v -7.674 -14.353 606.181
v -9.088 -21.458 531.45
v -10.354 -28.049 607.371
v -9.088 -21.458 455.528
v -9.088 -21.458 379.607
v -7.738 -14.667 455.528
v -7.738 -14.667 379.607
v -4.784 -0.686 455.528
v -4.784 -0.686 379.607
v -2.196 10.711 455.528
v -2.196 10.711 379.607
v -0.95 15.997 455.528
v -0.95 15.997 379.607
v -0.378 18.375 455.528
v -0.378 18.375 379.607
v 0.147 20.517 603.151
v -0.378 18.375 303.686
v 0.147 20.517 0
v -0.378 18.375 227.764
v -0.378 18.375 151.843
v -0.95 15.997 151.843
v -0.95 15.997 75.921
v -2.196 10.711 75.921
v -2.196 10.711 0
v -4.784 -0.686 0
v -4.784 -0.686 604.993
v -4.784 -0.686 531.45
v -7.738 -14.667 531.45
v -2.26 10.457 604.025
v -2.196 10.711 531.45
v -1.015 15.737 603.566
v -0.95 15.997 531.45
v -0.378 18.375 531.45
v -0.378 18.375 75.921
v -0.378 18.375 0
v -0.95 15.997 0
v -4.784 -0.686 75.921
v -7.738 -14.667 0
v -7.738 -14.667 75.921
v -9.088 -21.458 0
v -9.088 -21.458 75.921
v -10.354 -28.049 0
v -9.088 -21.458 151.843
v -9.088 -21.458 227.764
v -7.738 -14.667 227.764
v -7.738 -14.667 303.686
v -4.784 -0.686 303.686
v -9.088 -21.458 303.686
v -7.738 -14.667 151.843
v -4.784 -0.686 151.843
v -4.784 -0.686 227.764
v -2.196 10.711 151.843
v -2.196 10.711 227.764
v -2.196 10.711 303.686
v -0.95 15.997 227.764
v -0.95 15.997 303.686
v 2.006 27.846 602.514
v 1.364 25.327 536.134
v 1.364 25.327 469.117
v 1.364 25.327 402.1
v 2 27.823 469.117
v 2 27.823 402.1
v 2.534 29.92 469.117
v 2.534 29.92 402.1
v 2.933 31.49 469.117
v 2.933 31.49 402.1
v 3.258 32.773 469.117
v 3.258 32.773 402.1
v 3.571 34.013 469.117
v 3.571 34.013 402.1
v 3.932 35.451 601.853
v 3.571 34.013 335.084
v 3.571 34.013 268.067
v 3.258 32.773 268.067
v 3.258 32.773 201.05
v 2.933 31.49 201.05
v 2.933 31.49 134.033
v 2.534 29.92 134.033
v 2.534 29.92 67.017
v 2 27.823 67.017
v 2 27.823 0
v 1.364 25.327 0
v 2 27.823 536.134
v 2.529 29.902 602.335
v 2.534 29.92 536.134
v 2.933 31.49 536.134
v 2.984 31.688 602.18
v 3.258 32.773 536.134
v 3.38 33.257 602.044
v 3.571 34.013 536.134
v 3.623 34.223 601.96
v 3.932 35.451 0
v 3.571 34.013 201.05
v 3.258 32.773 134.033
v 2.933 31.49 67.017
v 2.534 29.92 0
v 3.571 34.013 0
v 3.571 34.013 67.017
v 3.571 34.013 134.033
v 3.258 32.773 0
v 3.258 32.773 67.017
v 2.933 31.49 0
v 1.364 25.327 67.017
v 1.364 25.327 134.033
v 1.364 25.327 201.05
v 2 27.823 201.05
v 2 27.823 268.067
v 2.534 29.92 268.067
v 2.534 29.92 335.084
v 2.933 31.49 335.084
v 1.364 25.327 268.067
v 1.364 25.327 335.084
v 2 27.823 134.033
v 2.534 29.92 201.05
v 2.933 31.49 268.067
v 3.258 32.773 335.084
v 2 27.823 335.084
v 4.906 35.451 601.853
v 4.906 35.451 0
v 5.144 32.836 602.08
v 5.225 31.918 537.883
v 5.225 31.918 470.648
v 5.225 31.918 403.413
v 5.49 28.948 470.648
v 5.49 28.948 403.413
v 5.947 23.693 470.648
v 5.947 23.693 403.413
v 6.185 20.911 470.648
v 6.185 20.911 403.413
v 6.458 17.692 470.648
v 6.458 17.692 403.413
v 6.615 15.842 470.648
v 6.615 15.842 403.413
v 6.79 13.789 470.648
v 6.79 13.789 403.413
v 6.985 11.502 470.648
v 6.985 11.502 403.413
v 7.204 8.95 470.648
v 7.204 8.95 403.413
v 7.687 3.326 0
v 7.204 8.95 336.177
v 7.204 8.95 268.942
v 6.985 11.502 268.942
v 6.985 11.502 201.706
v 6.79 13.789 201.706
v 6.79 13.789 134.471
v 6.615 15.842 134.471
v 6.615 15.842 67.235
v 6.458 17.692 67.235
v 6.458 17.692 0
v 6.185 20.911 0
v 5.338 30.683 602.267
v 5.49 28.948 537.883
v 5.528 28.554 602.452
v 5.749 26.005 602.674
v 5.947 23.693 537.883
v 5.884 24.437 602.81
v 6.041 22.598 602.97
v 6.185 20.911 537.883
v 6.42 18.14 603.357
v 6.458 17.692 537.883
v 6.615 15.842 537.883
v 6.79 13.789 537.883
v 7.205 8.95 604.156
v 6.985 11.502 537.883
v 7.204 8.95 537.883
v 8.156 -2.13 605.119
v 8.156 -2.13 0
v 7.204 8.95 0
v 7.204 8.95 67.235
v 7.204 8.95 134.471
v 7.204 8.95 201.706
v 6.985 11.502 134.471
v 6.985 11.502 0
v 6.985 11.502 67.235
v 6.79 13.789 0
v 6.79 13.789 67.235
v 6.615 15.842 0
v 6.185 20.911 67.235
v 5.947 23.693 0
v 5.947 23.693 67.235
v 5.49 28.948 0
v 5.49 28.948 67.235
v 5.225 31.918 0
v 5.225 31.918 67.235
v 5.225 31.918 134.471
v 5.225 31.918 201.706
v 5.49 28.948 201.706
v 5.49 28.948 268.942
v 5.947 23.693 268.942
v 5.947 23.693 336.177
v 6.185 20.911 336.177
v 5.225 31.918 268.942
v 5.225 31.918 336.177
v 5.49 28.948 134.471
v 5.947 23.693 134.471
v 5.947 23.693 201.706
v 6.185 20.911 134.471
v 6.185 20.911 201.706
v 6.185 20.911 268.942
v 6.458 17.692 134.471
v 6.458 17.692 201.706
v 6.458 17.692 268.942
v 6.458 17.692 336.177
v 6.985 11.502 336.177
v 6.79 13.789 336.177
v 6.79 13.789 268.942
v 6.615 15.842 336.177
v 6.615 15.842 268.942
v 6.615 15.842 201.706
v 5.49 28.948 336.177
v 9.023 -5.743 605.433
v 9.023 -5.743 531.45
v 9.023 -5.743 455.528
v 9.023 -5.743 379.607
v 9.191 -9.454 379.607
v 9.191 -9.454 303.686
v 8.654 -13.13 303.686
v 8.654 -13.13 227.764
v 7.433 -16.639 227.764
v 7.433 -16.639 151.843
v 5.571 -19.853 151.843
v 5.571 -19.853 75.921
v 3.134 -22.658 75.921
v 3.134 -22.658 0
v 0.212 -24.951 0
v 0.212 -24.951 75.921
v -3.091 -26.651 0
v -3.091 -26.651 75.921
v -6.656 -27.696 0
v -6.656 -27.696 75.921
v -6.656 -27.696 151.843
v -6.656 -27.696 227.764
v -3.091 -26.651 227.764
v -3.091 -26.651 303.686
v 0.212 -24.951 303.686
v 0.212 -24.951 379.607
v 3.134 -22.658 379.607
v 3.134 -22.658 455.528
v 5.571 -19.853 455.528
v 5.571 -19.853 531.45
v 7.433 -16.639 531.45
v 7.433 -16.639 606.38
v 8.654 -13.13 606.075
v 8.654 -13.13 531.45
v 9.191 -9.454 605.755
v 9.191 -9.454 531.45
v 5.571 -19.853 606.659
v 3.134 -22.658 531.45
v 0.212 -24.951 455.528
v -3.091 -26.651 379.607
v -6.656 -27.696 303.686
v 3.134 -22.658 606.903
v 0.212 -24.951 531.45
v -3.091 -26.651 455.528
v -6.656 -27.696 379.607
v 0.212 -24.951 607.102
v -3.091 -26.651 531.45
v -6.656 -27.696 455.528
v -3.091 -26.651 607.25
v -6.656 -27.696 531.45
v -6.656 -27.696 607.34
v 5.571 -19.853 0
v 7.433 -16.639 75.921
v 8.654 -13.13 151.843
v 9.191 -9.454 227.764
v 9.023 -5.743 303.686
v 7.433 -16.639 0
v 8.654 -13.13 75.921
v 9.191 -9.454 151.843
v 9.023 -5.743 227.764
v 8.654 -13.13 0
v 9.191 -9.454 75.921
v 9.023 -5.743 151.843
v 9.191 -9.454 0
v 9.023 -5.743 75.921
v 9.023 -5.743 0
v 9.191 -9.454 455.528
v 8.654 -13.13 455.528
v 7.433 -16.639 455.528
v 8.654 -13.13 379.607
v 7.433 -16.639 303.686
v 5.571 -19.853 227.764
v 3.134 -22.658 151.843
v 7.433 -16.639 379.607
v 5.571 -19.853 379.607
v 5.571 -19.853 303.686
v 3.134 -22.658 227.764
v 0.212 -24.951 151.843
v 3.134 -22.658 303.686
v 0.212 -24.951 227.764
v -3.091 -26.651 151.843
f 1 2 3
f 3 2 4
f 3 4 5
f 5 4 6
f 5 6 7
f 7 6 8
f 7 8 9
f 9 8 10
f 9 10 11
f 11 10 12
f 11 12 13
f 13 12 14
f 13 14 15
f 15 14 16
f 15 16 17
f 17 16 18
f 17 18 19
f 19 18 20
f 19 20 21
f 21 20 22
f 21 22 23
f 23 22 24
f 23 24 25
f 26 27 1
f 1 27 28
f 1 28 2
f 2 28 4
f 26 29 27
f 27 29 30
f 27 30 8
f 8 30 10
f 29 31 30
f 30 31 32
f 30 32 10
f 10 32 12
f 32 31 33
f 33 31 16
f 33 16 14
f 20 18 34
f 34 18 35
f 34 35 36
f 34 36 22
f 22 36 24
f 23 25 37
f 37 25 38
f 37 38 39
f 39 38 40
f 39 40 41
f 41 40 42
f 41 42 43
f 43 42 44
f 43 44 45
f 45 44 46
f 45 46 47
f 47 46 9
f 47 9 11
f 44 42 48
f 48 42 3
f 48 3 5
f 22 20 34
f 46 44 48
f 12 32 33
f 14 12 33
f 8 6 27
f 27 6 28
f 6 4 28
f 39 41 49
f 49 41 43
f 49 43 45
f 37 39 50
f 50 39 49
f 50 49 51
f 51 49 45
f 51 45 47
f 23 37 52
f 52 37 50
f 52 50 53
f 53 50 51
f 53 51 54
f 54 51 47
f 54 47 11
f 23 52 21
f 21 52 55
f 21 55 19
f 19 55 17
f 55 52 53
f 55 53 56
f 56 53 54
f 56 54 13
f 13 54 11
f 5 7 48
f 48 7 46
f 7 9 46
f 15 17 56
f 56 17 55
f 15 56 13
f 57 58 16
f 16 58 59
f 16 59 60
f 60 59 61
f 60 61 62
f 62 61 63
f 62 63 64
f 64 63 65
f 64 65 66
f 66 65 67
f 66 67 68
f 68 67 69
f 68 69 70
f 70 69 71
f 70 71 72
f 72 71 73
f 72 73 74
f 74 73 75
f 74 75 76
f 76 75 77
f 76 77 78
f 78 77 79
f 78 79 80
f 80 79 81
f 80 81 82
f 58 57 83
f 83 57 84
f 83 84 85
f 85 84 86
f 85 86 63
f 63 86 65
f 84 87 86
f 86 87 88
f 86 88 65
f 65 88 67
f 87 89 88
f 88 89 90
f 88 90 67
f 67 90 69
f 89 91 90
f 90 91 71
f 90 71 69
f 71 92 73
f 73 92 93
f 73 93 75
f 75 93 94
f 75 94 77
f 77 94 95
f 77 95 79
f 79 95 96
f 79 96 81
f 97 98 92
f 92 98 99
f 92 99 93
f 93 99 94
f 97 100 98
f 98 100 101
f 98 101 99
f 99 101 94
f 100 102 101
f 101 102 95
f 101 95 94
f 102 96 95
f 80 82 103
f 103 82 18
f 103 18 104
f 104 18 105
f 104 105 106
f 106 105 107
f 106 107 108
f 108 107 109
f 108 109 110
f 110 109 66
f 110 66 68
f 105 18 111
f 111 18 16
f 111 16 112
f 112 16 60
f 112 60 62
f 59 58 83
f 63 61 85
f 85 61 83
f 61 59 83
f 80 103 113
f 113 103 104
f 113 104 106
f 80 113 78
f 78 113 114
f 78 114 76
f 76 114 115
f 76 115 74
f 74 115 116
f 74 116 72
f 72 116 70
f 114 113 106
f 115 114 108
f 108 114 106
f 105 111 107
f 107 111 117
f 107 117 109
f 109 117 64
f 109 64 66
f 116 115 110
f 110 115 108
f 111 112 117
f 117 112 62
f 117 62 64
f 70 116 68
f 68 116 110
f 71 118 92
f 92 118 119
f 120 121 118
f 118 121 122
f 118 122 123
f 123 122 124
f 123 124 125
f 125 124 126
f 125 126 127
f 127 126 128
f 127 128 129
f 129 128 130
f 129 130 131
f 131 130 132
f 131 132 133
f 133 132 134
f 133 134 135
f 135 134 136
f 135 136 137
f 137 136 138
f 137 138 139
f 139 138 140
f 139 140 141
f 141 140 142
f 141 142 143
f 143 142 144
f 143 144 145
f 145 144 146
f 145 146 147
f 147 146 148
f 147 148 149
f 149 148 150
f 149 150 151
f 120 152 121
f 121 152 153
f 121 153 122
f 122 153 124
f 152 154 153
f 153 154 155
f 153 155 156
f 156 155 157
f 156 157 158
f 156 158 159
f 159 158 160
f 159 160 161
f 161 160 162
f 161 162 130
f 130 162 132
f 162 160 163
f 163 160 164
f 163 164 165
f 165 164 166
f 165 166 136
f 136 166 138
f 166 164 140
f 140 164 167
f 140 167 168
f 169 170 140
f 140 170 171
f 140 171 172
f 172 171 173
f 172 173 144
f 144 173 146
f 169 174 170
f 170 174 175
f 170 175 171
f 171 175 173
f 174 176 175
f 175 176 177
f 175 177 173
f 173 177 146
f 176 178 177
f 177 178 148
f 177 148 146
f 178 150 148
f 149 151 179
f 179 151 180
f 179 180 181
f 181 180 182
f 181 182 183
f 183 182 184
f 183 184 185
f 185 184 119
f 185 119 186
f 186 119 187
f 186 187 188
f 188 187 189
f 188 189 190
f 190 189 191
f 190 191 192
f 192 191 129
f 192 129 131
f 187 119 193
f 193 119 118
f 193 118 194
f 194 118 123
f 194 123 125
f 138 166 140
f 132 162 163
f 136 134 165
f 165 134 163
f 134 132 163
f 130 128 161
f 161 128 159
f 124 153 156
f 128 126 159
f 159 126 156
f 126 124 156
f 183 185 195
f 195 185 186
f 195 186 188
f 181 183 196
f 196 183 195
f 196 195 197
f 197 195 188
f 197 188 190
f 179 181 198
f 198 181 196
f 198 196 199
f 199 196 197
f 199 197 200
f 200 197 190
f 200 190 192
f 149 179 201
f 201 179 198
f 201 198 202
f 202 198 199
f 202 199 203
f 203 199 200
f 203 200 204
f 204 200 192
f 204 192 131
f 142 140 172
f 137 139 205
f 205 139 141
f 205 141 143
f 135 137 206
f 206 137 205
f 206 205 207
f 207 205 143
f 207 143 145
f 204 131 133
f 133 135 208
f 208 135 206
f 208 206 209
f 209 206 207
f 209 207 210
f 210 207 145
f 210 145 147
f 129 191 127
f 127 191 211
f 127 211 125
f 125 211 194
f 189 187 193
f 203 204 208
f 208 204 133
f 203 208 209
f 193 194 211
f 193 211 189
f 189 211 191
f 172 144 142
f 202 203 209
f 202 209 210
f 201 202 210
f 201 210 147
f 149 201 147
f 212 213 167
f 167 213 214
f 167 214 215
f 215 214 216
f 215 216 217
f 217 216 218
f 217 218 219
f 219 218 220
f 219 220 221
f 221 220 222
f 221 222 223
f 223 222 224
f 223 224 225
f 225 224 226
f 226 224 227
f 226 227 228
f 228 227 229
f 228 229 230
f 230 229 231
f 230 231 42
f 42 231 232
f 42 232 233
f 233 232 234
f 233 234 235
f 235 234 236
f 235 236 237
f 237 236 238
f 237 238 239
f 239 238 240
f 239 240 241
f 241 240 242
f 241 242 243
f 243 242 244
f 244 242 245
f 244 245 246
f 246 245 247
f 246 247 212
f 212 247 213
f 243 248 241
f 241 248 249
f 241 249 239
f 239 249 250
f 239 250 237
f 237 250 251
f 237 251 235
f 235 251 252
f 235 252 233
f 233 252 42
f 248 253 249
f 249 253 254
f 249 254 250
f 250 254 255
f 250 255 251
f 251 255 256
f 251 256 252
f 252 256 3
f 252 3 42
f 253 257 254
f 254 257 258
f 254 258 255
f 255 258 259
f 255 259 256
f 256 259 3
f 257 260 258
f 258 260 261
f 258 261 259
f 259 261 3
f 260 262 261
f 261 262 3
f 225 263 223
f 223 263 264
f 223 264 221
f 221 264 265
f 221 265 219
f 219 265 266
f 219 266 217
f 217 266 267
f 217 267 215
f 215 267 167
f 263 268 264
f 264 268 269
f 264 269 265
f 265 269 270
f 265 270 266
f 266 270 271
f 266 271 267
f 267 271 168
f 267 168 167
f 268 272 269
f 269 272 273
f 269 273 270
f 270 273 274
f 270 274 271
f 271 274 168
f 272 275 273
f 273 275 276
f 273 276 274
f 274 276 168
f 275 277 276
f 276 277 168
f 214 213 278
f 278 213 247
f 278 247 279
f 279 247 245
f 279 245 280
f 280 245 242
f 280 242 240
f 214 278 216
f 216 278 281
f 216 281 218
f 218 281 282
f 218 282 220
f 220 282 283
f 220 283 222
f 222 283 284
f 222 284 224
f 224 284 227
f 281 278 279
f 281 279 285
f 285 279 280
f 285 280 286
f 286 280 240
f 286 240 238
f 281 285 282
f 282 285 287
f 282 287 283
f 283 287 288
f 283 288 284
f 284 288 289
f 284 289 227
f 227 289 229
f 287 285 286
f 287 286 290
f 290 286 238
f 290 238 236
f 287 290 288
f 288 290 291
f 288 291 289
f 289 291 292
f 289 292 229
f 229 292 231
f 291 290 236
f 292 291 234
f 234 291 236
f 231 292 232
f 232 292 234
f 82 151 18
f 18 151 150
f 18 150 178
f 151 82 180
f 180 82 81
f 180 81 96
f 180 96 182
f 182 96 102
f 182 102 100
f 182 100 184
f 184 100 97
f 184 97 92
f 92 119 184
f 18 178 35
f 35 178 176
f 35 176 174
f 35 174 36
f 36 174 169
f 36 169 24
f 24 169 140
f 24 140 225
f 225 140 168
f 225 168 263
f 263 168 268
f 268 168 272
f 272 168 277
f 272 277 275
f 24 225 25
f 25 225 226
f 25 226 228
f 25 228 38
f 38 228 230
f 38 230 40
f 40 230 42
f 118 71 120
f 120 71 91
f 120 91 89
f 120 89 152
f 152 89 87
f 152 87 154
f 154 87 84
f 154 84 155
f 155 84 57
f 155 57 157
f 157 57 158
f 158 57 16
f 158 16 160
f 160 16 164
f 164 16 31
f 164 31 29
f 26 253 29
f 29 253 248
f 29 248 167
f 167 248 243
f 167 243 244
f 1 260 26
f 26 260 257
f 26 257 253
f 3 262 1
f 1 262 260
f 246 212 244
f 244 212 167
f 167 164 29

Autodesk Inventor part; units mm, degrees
ref_plane "YZ Plane" through (0, 0, 0) normal (1, 0, 0) x (0, 1, 0)
ref_plane "XZ Plane" through (0, 0, 0) normal (0, 1, 0) x (-1, 0, 0)
ref_plane "Work Plane1" through (-2925.2733, -622.4324, 0) normal (0, 0, 1) x (0.9219818, -0.3872333, 0)
sketch "Sketch1" plane through (-2925.2733, -622.4324, 0) normal (0, 0, 1) x (0.9219818, -0.3872333, 0)
  line L0 (2457.337, 1676.7645) -> (2462.4983, 1678.9322) projected
  line L1 (2446.8172, 1741.2195) -> (2445.9191, 1740.8423) projected
  spline S0 degree 3 poles (2445.9191, 1740.8423) (2446.3533, 1738.0048) (2446.4804, 1737.1605) (2447.5243, 1730.1637) (2447.849, 1727.9846) (2448.2125, 1725.6073) knots -1.334504 -1.334504 -1.334504 -1.334504 -0.473358 -0.473358 0 0 0 0 projected
  line L2 (2473.5621, 1683.579) -> (2476.43, 1684.7835) projected
  circle A0 centre (1.2437, -14.4504) radius 2 projected
  circle A1 centre (1.2437, -14.4504) radius 1 projected
  circle A2 centre (1.2437, -14.4504) radius 2
  line L3 (2464.4236, 1705.3371) -> (2473.5621, 1683.579) projected
  line L4 (2476.43, 1684.7835) -> (2473.5621, 1683.579) projected
  spline S1 degree 3 poles (2446.8172, 1741.2195) (2451.7124, 1732.0048) (2452.4978, 1730.4494) (2465.2393, 1706.1586) (2470.4628, 1696.2474) (2476.43, 1684.7835) knots -8.256346 -8.256346 -8.256346 -8.256346 -3.940963 -3.940963 -0.050257 -0.050257 -0.050257 -0.050257 projected
  line L5 (2445.9191, 1740.8423) -> (2446.8172, 1741.2195) projected
  spline S2 degree 3 poles (2448.2125, 1725.6073) (2447.849, 1727.9846) (2447.5243, 1730.1637) (2446.4804, 1737.1605) (2446.3533, 1738.0048) (2445.9191, 1740.8423) knots -1.334504 -1.334504 -1.334504 -1.334504 -0.861145 -0.861145 0 0 0 0 projected
  spline S3 degree 3 poles (2457.337, 1676.7645) (2455.4989, 1685.3573) (2453.6106, 1694.6448) (2450.5029, 1711.682) (2449.0652, 1720.1585) (2448.2125, 1725.6073) knots -3.742267 -3.742267 -3.742267 -3.742267 -1.654546 -1.654546 0 0 0 0 projected
  line L6 (2462.4983, 1678.9322) -> (2457.337, 1676.7645) projected
  line L7 (2462.4983, 1678.9322) -> (2453.3598, 1700.6903) projected
  line L8 (2453.3598, 1700.6903) -> (2464.4236, 1705.3371) projected
  circle A3 centre (-81.1133, -14.9806) radius 1
  line L9 (2457.337, 1676.7645) -> (2476.43, 1684.7835)
  arc A4 (2457.337, 1676.7645) -> (2464.3672, 1707.8287) centre (2449.7591, 1694.807) ccw
  line L10 (2453.3598, 1700.6903) -> (2464.4236, 1705.3371) projected
  line L11 (2464.4236, 1705.3371) -> (2473.5621, 1683.579) projected
  line L12 (2462.4983, 1678.9322) -> (2453.3598, 1700.6903) projected
  spline S4 degree 3 poles (2476.43, 1684.7835) (2470.4628, 1696.2474) (2465.2393, 1706.1586) (2452.4978, 1730.4494) (2451.7124, 1732.0048) (2446.8172, 1741.2195) knots -8.256346 -8.256346 -8.256346 -8.256346 -4.36564 -4.36564 -0.050257 -0.050257 -0.050257 -0.050257 projected
  spline S5 degree 3 poles (2448.2125, 1725.6073) (2449.0652, 1720.1585) (2450.5029, 1711.682) (2453.6106, 1694.6448) (2455.4989, 1685.3573) (2457.337, 1676.7645) knots -3.742267 -3.742267 -3.742267 -3.742267 -2.087721 -2.087721 0 0 0 0 projected
  point P0 (2456.022, 1706.6346)
ref_plane "Work Plane2" through (-21.4445, -212.198, 623.3738) normal (0, 0.0865745, 0.9962454) x (1, 0, 0)
extrude "Extrusion1" add sketch "Sketch1" along normal up to surface contours S3 S0 L1 S1 A4 L3 L8 L7 | L7 L8 L3 A4 | S1 A4 surface through (-21.4445, -212.198, 623.3738) normal (0, 0.0865745, 0.9962454)
properties part number "LeftAlerion"
